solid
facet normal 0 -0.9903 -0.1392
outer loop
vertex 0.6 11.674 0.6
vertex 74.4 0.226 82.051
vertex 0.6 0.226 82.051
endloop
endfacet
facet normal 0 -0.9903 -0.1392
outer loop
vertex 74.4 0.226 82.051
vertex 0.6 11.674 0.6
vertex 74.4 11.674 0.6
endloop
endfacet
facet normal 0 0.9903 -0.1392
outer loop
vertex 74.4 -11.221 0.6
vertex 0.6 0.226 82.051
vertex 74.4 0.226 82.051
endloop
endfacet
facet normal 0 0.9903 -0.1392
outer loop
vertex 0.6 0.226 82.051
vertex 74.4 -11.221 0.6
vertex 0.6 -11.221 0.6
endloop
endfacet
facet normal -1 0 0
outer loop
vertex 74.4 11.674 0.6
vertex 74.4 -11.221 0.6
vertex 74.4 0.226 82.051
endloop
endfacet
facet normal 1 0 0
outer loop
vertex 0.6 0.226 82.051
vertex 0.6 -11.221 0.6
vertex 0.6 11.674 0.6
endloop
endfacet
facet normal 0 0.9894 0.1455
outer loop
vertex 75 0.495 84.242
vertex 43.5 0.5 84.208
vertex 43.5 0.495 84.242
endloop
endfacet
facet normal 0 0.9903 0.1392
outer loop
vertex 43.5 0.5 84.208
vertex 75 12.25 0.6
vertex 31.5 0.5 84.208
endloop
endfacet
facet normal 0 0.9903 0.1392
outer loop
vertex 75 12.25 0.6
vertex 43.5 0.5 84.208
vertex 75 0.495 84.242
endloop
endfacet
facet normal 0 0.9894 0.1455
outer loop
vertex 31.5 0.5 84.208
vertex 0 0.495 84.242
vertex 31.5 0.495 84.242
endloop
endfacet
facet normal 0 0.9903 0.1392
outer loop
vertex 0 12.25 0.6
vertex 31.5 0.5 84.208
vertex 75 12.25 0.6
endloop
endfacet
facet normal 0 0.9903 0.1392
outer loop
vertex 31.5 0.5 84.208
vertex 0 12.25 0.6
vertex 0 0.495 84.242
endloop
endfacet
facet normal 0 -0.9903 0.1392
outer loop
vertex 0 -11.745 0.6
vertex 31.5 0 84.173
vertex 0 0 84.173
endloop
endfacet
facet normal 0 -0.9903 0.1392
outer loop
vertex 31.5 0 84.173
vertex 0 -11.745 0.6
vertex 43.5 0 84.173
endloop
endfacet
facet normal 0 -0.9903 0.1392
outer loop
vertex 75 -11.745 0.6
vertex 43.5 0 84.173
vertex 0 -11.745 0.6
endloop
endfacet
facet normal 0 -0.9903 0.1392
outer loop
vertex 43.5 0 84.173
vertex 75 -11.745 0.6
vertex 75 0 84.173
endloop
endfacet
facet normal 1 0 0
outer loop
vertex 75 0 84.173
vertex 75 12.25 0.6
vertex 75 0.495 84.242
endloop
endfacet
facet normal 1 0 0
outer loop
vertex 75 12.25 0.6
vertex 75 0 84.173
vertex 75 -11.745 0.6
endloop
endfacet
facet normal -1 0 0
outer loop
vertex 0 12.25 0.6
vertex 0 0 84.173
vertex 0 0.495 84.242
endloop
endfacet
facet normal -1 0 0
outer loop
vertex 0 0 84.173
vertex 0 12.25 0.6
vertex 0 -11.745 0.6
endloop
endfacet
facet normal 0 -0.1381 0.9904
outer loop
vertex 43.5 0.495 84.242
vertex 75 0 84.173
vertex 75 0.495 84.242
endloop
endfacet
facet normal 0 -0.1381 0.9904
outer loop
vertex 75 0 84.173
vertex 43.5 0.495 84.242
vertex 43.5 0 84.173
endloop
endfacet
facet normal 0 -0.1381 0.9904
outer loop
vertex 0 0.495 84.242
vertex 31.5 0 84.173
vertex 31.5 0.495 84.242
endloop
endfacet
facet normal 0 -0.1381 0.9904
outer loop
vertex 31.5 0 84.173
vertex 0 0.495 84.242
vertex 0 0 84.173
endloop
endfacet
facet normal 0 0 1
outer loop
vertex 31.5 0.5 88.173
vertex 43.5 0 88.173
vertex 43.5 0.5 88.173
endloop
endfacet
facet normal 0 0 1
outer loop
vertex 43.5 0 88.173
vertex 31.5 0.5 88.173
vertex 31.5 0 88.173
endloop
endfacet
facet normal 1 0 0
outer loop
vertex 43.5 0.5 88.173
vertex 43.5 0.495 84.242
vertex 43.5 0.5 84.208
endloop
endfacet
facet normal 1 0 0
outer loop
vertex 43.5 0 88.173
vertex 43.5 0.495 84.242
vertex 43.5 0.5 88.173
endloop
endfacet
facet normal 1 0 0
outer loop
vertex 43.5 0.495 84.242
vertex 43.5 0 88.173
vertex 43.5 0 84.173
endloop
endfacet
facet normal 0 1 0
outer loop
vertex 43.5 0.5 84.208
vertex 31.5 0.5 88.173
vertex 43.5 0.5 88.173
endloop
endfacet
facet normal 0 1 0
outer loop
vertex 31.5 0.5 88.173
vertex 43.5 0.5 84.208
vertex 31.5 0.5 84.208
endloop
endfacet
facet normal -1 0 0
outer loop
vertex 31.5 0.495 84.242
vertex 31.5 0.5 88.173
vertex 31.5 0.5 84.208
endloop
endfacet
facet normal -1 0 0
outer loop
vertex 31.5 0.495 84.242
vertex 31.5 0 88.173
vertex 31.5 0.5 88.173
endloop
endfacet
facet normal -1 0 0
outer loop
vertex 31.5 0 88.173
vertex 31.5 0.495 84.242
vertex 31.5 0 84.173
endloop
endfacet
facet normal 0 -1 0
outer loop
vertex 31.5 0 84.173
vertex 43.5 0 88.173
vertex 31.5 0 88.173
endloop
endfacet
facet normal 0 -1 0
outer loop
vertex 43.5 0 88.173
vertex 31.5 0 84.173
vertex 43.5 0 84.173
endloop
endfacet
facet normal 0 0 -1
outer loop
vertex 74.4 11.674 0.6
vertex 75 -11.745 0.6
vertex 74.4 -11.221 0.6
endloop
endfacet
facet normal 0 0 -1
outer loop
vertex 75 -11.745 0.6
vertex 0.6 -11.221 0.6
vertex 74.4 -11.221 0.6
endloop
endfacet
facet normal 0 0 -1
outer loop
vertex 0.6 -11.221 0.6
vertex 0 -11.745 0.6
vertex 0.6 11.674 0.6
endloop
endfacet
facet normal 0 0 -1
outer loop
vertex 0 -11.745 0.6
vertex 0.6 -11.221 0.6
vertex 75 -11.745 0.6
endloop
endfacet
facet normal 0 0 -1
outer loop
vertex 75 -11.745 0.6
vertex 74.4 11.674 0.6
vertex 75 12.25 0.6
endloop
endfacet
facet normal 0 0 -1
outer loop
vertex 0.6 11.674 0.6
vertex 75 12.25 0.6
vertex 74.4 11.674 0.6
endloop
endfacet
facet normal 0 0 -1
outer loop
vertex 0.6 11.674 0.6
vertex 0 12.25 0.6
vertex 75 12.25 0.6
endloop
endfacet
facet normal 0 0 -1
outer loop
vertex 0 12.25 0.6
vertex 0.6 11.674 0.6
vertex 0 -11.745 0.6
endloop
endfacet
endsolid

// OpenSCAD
ANGLE = 16;
LENGTH = 85;
WIDTH = 75;
TAB_WIDTH = 12;
TAB_LENGTH = 1.5 + 2.5;
MIN_THICKNESS = 0.5;
WALL = .6;


module skin(thickness) {
    intersection() {
        minkowski() {
            difference() {
                INF = 1000;
                cube(INF, center=true);
                children();
            }
            sphere(d=thickness*2, $fn=6);
        }
        children();
    }
}


module body() {
    hull() {
        cube([WIDTH, LENGTH, MIN_THICKNESS]);
        rotate([ANGLE, 0, 0])
        cube([WIDTH, LENGTH, MIN_THICKNESS]);
    }
}


module all() {
    skin(WALL) body();

    rotate([ANGLE/2, 0, 0])
    translate([WIDTH/2-TAB_WIDTH/2, -TAB_LENGTH, 0])
    cube([TAB_WIDTH, TAB_LENGTH, MIN_THICKNESS]);
}


difference() {
    translate([0, 0, cos(ANGLE/2)*LENGTH])
    rotate([-90-ANGLE/2, 0, 0])
    all();

    translate([0, 0, -WIDTH+WALL*1])
    cube(WIDTH*2, center=true);
}
